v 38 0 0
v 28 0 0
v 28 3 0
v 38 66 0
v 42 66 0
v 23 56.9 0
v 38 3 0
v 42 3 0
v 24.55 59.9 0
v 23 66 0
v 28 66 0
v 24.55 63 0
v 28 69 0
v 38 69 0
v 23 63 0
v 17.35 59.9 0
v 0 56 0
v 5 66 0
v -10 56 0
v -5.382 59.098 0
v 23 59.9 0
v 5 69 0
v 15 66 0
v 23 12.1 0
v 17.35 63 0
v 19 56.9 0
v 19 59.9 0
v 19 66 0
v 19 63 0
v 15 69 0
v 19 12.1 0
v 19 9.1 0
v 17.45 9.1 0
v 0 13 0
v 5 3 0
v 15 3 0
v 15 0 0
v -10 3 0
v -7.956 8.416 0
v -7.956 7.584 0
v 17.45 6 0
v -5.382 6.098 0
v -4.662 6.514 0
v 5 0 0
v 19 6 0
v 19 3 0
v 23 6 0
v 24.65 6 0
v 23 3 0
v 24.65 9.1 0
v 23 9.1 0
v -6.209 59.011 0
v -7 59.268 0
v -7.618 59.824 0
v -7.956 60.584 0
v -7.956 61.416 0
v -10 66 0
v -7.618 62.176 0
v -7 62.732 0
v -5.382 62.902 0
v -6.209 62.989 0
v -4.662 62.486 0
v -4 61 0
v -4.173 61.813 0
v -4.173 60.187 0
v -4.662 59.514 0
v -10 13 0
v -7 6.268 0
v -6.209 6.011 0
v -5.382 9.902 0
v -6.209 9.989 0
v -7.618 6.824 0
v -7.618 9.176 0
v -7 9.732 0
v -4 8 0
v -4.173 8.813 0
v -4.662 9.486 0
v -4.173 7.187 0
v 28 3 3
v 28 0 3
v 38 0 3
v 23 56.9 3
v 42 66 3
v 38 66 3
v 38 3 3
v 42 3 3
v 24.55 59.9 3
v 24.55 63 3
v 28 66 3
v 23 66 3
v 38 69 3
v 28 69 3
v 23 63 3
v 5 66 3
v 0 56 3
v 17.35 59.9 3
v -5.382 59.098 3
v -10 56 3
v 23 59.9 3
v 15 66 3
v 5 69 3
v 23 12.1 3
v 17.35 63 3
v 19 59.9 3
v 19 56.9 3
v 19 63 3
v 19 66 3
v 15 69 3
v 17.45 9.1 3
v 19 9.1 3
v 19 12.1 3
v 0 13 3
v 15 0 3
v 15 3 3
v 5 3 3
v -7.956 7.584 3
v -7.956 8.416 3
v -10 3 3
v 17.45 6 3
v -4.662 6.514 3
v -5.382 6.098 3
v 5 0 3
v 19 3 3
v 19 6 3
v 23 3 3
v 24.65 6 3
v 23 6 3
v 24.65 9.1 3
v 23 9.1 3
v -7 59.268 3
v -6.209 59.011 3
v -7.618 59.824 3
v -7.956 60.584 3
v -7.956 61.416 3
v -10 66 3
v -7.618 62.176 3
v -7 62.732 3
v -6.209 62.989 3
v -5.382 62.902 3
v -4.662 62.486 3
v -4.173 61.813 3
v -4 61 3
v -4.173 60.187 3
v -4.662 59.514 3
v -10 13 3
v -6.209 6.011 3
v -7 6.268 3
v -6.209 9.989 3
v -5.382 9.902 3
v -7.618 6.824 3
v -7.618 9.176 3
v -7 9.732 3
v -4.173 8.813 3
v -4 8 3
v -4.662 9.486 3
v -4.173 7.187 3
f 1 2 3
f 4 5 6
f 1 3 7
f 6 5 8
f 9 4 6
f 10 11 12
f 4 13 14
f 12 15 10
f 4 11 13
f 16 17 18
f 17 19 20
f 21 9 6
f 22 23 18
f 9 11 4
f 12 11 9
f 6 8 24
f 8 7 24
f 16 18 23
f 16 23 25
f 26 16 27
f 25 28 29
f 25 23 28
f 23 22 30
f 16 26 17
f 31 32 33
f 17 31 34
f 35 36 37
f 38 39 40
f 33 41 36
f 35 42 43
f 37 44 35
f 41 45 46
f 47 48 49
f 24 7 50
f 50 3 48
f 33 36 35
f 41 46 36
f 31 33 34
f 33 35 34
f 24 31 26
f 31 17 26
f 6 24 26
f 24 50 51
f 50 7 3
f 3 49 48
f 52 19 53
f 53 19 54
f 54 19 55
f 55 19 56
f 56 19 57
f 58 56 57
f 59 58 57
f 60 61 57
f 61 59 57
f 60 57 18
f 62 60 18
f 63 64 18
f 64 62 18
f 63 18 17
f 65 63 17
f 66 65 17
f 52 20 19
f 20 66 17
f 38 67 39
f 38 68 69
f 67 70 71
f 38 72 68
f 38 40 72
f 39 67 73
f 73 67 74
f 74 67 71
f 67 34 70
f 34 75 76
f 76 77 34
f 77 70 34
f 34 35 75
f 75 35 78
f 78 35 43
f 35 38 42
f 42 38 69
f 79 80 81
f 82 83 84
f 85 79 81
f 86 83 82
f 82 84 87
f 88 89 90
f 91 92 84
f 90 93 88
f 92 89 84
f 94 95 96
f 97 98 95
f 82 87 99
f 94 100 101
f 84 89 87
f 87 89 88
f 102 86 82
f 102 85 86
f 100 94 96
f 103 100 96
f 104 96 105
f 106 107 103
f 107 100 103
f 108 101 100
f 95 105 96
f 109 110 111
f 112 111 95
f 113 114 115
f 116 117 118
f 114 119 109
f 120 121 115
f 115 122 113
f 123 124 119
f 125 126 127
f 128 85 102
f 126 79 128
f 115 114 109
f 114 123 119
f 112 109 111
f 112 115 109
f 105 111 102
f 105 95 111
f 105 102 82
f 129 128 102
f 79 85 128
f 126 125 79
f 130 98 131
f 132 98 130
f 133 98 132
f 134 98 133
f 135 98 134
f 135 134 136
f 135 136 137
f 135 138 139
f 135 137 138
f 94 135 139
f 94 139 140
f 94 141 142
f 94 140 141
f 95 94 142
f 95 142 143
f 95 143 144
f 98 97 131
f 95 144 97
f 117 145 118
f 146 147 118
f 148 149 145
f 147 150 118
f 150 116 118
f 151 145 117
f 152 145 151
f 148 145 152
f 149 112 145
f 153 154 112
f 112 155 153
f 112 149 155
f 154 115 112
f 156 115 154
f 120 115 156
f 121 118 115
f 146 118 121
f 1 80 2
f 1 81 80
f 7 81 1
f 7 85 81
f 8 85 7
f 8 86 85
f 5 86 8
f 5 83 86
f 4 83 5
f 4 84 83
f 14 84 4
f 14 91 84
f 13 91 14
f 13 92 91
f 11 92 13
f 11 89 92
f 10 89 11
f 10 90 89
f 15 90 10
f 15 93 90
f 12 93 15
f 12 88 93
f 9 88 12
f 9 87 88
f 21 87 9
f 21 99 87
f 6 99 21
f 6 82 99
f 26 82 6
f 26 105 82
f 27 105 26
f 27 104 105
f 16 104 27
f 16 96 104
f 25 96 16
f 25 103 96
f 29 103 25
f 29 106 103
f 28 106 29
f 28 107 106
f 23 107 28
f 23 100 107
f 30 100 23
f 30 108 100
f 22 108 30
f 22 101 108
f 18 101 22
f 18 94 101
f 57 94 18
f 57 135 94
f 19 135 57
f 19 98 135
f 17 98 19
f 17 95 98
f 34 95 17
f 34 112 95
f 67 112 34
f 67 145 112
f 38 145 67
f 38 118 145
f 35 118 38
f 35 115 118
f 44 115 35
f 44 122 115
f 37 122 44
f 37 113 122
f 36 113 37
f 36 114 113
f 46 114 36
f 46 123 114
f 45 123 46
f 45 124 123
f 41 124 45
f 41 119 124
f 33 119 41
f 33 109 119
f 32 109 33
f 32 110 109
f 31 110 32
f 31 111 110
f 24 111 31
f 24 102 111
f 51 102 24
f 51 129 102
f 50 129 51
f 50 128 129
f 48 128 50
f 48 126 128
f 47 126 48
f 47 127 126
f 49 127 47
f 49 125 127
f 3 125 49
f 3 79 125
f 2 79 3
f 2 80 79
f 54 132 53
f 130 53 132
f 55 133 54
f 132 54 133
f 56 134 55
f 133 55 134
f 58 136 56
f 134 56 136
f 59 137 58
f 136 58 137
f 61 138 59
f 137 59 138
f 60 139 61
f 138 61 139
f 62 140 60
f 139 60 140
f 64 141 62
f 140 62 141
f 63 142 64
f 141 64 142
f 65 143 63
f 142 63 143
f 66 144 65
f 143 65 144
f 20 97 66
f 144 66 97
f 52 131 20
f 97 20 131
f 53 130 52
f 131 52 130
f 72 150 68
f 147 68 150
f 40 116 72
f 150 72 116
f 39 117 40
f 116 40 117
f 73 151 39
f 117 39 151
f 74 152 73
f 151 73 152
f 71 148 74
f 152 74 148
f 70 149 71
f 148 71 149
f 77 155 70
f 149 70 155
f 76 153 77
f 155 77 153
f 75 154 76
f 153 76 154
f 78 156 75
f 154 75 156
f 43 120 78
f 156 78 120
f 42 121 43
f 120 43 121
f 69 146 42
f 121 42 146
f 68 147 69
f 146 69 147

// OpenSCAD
module nut_hole() {
    // Shape for inserting the screw
    translate([-2, 0])
        square([4,3]);
    
    // Shape for the nut
    translate([-3.55,3])
        square([7.2,3.1]);
    
    // Space for screw past nut
    translate([-2, 6.1])
        square([4, 3]);
}

module squares() {
    // Main squares for base
    translate([0, 3])
        square([42,63]);
    
    // Tabs left
    translate([5,0])
        square([10,3]);
    translate([28,0])
        square([10,3]);
    
    // Tabs right
    translate([5,66])
        square([10,3]);
    translate([28,66])
        square([10,3]);
    
    // Wood mount squares
    translate([-10,3])
        square([10,10]);
    
    translate([-10,56])
        square([10,10]);
}

module base_2d() {
    
    difference() {
        // Primary Shape
        squares();
        
        // Screw/Nut hole left
        translate([21,3])
            nut_hole();
        
        // Screwn/Nut hole right
        translate([21,66])
            rotate([0,0,180]) {
                nut_hole();
            };
        
        // Wood mount screw holes
        translate([-6, 8])
            circle(r=2, $fn=15);
        translate([-6, 61])
            circle(r=2, $fn=15);
    }
}

module base() {
    linear_extrude(3) {
        base_2d();
    };
}

base();
//nut_hole();
